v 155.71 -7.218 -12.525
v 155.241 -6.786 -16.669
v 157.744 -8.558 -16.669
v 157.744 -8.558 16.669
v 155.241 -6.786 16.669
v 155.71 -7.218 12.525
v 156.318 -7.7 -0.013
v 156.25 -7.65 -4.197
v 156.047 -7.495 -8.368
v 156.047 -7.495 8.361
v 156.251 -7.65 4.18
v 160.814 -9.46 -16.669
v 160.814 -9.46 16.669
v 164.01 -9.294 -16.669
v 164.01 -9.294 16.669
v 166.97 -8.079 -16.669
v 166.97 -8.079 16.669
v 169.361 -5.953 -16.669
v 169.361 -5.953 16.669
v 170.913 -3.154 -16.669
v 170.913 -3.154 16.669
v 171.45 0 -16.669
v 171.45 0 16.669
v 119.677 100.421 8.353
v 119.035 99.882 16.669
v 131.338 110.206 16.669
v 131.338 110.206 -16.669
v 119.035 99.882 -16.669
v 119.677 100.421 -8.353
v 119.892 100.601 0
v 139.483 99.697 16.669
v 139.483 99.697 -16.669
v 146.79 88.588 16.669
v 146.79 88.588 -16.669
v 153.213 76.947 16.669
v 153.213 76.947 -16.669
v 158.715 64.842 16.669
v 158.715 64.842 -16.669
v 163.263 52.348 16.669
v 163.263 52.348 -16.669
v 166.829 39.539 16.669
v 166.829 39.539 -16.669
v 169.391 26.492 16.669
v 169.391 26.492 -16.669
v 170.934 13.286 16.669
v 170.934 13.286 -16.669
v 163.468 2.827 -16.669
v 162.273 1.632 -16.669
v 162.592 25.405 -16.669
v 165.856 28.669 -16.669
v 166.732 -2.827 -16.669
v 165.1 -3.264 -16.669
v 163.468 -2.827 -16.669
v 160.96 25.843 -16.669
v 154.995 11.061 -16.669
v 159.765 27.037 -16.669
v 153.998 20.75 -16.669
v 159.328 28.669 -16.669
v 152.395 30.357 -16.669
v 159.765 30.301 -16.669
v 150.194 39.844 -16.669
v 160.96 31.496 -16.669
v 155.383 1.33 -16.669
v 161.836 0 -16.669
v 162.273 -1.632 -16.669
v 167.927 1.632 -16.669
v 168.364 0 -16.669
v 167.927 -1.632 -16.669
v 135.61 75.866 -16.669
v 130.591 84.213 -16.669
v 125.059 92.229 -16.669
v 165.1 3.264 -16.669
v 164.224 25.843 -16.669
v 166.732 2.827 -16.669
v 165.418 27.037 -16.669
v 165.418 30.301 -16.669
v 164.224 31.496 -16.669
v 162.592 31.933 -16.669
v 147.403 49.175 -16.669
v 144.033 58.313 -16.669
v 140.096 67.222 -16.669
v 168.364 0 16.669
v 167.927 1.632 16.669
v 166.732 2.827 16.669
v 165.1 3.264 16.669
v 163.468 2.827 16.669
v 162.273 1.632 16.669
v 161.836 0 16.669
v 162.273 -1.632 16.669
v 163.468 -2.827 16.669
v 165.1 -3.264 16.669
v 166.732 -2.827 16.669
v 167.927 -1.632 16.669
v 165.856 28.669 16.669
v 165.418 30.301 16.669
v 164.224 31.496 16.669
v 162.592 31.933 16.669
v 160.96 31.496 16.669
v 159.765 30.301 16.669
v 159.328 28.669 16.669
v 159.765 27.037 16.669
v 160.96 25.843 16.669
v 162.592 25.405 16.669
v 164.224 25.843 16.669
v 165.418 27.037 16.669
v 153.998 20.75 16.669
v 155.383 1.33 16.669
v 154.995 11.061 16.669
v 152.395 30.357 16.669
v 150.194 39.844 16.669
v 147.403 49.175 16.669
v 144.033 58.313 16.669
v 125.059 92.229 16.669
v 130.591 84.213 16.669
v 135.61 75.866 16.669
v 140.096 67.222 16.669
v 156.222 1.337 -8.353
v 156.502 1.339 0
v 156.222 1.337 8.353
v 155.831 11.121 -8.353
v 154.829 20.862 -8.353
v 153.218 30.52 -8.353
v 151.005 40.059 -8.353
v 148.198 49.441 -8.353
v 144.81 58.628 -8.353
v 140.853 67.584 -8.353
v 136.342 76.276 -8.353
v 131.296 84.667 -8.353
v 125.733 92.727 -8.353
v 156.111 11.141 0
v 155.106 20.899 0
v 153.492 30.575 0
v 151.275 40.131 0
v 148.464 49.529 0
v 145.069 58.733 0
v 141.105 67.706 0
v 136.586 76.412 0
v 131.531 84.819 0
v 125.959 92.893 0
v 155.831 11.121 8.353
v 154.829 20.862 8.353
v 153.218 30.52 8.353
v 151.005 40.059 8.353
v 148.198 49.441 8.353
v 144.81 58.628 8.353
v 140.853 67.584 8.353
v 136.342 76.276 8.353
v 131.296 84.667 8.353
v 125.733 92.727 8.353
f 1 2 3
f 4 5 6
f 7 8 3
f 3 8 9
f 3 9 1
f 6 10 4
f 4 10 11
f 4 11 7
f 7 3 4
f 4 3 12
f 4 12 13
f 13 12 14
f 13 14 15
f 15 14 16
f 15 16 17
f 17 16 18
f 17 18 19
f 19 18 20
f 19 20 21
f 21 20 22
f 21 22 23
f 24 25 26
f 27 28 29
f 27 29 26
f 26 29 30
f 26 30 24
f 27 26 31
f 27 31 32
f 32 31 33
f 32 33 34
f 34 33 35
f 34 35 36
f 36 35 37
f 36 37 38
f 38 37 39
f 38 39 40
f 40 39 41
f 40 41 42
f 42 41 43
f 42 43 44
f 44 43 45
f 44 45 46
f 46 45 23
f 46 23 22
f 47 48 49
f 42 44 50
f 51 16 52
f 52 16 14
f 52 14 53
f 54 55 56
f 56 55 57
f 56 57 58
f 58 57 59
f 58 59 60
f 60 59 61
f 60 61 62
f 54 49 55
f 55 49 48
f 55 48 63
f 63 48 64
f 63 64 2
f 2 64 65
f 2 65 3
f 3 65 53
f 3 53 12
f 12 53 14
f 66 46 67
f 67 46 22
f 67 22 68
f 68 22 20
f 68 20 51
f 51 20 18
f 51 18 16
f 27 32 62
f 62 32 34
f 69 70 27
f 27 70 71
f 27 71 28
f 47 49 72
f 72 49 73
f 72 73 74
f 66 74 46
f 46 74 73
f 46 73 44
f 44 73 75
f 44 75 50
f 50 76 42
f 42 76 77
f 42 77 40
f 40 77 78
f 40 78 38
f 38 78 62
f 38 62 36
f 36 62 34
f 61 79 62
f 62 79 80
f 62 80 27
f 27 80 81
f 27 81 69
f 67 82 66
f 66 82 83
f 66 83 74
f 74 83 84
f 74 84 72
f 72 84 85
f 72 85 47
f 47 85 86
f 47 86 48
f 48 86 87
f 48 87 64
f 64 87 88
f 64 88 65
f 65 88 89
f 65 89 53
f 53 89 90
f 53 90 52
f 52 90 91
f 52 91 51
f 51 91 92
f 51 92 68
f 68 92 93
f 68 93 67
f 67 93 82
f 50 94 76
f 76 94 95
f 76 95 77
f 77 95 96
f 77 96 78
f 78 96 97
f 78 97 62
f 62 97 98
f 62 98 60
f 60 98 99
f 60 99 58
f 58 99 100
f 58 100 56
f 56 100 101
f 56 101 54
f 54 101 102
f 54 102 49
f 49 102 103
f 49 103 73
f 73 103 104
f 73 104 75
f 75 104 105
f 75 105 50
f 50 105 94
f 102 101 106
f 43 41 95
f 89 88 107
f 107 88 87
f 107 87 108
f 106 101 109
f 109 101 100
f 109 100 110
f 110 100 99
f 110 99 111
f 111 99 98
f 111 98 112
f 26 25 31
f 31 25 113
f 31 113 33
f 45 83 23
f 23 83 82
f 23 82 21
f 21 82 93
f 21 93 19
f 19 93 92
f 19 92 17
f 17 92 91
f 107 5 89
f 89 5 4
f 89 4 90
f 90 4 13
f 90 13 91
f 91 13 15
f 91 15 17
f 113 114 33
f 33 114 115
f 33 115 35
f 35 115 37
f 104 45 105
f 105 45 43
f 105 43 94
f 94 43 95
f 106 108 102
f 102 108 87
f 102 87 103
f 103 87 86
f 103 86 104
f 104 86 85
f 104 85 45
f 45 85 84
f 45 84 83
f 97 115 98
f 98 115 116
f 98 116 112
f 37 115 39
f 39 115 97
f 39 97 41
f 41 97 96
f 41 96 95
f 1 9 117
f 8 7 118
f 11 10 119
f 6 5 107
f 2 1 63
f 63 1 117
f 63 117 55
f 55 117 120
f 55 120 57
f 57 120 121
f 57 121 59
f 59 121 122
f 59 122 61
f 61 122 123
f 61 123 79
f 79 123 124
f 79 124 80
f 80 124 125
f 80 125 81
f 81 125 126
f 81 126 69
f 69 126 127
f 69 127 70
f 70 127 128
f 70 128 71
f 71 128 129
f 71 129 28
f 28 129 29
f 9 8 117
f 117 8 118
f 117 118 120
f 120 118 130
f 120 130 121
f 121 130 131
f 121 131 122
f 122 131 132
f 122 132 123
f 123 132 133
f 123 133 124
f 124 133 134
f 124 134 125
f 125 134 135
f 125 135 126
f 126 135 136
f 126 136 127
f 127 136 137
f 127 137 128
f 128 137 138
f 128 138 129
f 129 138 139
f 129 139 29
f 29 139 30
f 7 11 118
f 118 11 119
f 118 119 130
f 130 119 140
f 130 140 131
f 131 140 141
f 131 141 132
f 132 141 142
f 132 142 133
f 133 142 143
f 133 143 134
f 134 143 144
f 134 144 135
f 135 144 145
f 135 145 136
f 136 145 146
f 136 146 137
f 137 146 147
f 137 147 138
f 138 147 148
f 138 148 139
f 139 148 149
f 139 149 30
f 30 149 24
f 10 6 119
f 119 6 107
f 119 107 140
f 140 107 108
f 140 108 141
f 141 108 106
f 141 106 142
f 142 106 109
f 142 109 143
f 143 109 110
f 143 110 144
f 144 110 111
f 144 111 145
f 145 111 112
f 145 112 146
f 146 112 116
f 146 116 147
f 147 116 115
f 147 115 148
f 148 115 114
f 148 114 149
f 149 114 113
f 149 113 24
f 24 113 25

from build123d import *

# Parameters (mm, degrees)
BOSS_EXTRUDE1_DEPTH      = 16.66875
BOSS_EXTRUDE1_DEPTH_BACK = 16.66875
SKETCH2_R                = 3.2639


with BuildPart() as part:
    # Sketch2 → Boss-Extrude1 (new, two sides: drawn at the far end of the back side and taken through both)
    with BuildSketch(Plane.XY.offset(-BOSS_EXTRUDE1_DEPTH_BACK)):
        with BuildLine():
            Line((116.745173131, 97.960831716), (131.338319773, 110.205935681))
            ThreePointArc((131.338319773, 110.205935681), (161.110299834, 58.639353573), (171.45, 0))
            ThreePointArc((171.45, 0), (161.925, -9.525), (152.4, 0))
            ThreePointArc((152.4, 0), (143.209155408, 52.123869843), (116.745173131, 97.960831716))
        make_face()
        with Locations((165.1, 0)):
            Circle(SKETCH2_R, mode=Mode.SUBTRACT)
        with Locations((162.591760022, 28.669314133)):
            Circle(SKETCH2_R, mode=Mode.SUBTRACT)
    extrude(amount=BOSS_EXTRUDE1_DEPTH + BOSS_EXTRUDE1_DEPTH_BACK)

    # Sketch3 → Cut-Revolve2 (revolve, cut)
    with BuildSketch(Plane(origin=(0, 0, 0), x_dir=(1, 0, 0), z_dir=(0, 1, 0))):
        with BuildLine():
            Line((31.75, 0), (31.75, 124.757705173))
            ThreePointArc((31.75, 124.757705173), (156.507705173, 0), (31.75, -124.757705173))
            Line((31.75, -124.757705173), (31.75, 0))
        make_face()
    revolve(axis=Axis((0, 0, 1000), (0, 0, -1)), mode=Mode.SUBTRACT)


solid = part.part
